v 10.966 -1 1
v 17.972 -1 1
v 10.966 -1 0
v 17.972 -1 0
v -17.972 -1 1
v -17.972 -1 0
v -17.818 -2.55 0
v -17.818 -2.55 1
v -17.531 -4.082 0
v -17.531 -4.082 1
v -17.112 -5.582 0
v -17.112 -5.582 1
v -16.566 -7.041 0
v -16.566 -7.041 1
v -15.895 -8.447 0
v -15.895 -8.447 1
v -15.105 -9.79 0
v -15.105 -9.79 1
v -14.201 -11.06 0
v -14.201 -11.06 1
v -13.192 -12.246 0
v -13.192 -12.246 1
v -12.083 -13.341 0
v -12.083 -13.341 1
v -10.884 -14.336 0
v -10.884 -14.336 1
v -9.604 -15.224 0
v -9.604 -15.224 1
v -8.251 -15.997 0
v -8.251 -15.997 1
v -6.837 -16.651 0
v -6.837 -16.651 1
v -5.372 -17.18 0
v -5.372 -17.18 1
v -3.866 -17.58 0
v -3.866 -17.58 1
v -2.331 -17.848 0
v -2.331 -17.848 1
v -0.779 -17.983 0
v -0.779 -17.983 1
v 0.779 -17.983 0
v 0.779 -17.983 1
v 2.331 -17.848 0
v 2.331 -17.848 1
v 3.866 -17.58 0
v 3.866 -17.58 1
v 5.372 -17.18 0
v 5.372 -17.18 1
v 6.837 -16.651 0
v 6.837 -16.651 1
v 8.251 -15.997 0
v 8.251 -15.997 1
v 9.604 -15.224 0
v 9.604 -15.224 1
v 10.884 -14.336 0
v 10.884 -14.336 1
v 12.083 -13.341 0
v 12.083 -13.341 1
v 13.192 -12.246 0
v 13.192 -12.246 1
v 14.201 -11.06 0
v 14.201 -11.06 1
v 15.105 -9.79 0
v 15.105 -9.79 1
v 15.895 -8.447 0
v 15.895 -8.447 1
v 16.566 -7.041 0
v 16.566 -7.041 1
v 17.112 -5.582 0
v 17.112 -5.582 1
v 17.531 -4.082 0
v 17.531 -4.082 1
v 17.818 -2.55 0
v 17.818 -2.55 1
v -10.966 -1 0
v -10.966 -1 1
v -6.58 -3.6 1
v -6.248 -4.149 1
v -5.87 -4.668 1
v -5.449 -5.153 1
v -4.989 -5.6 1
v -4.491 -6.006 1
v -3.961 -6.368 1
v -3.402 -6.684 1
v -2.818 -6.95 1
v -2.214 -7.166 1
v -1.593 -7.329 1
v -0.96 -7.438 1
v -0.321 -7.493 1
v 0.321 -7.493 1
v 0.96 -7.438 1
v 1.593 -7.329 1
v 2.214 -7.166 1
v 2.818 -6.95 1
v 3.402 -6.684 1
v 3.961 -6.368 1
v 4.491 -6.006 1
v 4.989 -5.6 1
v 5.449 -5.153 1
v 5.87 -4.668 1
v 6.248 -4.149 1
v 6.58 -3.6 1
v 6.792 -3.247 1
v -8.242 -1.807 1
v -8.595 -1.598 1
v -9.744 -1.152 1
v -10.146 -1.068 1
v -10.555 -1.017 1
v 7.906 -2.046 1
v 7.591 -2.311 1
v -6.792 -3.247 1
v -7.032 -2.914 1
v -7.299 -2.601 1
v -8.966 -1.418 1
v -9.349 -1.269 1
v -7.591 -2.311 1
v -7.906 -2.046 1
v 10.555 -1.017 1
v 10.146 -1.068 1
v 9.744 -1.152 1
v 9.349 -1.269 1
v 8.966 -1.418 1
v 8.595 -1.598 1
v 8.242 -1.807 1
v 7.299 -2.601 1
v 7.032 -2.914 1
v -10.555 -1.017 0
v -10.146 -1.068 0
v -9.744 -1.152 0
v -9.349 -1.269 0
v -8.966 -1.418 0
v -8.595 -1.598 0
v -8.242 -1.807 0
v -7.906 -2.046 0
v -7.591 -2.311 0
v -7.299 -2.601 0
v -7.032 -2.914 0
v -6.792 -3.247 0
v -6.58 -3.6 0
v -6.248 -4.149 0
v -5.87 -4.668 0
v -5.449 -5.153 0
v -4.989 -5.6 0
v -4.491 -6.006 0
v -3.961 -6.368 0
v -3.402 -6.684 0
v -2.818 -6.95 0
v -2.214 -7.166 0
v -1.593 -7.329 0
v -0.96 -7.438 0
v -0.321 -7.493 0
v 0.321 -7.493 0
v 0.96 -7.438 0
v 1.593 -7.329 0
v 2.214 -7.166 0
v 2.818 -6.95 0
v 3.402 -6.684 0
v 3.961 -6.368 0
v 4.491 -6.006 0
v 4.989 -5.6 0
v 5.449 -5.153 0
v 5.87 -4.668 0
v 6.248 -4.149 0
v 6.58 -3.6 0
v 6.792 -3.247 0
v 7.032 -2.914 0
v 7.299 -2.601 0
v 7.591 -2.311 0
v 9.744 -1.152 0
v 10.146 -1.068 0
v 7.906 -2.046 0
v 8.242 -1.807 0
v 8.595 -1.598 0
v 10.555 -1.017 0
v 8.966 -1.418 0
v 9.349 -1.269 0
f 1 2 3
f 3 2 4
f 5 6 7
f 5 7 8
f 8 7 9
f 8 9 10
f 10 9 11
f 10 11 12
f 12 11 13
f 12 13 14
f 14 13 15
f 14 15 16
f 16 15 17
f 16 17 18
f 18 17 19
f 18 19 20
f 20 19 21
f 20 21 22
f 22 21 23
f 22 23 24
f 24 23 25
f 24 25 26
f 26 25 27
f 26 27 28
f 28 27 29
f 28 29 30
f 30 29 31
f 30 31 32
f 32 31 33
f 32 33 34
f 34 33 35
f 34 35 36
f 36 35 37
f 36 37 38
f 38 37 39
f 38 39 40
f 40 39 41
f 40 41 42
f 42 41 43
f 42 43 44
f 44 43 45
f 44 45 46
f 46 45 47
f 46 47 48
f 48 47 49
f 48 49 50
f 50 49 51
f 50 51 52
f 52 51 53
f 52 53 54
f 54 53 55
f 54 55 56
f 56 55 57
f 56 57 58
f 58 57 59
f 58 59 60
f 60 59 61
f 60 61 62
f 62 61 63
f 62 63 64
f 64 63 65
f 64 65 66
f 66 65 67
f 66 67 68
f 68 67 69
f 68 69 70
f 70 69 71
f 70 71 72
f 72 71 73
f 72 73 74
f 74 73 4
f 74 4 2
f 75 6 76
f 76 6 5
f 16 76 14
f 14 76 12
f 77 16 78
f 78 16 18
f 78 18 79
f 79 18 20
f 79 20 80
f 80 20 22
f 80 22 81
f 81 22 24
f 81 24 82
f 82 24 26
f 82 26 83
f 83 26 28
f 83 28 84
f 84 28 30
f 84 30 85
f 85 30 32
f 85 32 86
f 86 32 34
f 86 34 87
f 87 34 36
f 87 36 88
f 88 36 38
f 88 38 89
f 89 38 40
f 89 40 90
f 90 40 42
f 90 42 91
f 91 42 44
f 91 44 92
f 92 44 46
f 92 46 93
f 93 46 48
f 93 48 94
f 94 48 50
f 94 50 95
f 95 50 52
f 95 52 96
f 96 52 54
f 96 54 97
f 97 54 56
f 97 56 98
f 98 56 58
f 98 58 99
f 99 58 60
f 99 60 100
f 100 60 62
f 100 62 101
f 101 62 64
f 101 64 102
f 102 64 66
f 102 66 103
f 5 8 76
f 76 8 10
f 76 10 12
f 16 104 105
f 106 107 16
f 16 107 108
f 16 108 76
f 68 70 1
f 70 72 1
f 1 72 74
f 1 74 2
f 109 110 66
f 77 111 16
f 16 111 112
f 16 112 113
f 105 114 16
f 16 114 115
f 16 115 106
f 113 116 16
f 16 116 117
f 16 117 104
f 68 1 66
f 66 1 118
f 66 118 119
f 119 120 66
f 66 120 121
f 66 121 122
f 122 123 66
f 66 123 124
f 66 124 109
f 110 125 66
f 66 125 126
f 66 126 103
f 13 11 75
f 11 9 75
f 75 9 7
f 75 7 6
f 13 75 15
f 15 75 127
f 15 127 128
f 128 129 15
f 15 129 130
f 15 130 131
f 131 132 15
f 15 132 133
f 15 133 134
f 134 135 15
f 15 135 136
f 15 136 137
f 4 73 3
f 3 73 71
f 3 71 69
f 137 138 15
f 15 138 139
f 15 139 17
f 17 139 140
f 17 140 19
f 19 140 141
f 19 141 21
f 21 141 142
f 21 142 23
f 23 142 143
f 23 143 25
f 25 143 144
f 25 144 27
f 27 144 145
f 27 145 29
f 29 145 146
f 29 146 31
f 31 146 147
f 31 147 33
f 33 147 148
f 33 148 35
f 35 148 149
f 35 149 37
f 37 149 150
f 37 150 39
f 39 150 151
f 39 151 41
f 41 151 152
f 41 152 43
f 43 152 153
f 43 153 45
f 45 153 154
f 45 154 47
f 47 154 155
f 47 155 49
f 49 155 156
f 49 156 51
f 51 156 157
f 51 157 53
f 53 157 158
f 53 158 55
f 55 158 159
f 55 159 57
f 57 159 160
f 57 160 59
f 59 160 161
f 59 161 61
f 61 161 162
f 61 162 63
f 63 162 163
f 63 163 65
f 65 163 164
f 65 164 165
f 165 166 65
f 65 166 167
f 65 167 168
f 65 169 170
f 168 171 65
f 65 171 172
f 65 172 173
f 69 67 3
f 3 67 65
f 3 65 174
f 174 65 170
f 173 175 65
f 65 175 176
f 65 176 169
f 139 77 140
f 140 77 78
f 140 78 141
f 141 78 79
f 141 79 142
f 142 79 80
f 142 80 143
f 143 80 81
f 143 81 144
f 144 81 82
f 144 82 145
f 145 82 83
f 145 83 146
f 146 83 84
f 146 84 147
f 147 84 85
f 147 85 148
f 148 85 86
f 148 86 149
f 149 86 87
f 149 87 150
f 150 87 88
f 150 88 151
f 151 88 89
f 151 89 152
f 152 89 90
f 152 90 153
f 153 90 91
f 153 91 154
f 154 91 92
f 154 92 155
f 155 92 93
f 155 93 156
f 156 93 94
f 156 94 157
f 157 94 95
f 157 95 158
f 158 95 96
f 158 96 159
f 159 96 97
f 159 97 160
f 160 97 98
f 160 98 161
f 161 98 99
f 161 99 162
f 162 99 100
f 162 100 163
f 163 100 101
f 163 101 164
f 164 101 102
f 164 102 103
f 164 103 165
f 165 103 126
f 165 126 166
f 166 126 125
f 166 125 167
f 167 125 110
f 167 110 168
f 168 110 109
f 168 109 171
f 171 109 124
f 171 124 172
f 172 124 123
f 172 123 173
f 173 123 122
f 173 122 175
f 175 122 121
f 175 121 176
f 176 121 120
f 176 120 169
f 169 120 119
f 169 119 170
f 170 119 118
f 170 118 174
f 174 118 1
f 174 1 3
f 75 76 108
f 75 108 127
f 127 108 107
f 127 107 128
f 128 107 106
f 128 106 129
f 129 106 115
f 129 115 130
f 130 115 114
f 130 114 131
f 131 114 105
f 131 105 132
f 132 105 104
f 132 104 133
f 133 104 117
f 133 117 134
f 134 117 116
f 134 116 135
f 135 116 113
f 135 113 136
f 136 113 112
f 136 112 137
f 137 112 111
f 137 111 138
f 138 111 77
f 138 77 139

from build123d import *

# Parameters (mm, degrees)
BOSS_EXTRUDE1_DEPTH = 1
SKETCH2_R           = 7.5
CUT_EXTRUDE1_DEPTH  = 26.455844123
FILLET1_R           = 5


with BuildPart() as part:
    # Sketch1 → Boss-Extrude1 (new body)
    with BuildSketch(Plane.XY):
        with BuildLine():
            Line((-17.972200756, -1), (17.972200756, -1))
            ThreePointArc((17.972200756, -1), (0, -18), (-17.972200756, -1))
        make_face()
    extrude(amount=BOSS_EXTRUDE1_DEPTH)

    # Sketch2 → Cut-Extrude1 (cut, through all)
    with BuildSketch(Plane.XY.offset(1)):
        Circle(SKETCH2_R)
    extrude(amount=-CUT_EXTRUDE1_DEPTH, mode=Mode.SUBTRACT)

    # Fillet1
    fillet1_edges = [part.edges().sort_by_distance(p)[0] for p in [
        (7.433034374, -1, 0.5),
        (-7.433034374, -1, 0.5),
    ]]
    fillet(fillet1_edges, radius=FILLET1_R)


solid = part.part
